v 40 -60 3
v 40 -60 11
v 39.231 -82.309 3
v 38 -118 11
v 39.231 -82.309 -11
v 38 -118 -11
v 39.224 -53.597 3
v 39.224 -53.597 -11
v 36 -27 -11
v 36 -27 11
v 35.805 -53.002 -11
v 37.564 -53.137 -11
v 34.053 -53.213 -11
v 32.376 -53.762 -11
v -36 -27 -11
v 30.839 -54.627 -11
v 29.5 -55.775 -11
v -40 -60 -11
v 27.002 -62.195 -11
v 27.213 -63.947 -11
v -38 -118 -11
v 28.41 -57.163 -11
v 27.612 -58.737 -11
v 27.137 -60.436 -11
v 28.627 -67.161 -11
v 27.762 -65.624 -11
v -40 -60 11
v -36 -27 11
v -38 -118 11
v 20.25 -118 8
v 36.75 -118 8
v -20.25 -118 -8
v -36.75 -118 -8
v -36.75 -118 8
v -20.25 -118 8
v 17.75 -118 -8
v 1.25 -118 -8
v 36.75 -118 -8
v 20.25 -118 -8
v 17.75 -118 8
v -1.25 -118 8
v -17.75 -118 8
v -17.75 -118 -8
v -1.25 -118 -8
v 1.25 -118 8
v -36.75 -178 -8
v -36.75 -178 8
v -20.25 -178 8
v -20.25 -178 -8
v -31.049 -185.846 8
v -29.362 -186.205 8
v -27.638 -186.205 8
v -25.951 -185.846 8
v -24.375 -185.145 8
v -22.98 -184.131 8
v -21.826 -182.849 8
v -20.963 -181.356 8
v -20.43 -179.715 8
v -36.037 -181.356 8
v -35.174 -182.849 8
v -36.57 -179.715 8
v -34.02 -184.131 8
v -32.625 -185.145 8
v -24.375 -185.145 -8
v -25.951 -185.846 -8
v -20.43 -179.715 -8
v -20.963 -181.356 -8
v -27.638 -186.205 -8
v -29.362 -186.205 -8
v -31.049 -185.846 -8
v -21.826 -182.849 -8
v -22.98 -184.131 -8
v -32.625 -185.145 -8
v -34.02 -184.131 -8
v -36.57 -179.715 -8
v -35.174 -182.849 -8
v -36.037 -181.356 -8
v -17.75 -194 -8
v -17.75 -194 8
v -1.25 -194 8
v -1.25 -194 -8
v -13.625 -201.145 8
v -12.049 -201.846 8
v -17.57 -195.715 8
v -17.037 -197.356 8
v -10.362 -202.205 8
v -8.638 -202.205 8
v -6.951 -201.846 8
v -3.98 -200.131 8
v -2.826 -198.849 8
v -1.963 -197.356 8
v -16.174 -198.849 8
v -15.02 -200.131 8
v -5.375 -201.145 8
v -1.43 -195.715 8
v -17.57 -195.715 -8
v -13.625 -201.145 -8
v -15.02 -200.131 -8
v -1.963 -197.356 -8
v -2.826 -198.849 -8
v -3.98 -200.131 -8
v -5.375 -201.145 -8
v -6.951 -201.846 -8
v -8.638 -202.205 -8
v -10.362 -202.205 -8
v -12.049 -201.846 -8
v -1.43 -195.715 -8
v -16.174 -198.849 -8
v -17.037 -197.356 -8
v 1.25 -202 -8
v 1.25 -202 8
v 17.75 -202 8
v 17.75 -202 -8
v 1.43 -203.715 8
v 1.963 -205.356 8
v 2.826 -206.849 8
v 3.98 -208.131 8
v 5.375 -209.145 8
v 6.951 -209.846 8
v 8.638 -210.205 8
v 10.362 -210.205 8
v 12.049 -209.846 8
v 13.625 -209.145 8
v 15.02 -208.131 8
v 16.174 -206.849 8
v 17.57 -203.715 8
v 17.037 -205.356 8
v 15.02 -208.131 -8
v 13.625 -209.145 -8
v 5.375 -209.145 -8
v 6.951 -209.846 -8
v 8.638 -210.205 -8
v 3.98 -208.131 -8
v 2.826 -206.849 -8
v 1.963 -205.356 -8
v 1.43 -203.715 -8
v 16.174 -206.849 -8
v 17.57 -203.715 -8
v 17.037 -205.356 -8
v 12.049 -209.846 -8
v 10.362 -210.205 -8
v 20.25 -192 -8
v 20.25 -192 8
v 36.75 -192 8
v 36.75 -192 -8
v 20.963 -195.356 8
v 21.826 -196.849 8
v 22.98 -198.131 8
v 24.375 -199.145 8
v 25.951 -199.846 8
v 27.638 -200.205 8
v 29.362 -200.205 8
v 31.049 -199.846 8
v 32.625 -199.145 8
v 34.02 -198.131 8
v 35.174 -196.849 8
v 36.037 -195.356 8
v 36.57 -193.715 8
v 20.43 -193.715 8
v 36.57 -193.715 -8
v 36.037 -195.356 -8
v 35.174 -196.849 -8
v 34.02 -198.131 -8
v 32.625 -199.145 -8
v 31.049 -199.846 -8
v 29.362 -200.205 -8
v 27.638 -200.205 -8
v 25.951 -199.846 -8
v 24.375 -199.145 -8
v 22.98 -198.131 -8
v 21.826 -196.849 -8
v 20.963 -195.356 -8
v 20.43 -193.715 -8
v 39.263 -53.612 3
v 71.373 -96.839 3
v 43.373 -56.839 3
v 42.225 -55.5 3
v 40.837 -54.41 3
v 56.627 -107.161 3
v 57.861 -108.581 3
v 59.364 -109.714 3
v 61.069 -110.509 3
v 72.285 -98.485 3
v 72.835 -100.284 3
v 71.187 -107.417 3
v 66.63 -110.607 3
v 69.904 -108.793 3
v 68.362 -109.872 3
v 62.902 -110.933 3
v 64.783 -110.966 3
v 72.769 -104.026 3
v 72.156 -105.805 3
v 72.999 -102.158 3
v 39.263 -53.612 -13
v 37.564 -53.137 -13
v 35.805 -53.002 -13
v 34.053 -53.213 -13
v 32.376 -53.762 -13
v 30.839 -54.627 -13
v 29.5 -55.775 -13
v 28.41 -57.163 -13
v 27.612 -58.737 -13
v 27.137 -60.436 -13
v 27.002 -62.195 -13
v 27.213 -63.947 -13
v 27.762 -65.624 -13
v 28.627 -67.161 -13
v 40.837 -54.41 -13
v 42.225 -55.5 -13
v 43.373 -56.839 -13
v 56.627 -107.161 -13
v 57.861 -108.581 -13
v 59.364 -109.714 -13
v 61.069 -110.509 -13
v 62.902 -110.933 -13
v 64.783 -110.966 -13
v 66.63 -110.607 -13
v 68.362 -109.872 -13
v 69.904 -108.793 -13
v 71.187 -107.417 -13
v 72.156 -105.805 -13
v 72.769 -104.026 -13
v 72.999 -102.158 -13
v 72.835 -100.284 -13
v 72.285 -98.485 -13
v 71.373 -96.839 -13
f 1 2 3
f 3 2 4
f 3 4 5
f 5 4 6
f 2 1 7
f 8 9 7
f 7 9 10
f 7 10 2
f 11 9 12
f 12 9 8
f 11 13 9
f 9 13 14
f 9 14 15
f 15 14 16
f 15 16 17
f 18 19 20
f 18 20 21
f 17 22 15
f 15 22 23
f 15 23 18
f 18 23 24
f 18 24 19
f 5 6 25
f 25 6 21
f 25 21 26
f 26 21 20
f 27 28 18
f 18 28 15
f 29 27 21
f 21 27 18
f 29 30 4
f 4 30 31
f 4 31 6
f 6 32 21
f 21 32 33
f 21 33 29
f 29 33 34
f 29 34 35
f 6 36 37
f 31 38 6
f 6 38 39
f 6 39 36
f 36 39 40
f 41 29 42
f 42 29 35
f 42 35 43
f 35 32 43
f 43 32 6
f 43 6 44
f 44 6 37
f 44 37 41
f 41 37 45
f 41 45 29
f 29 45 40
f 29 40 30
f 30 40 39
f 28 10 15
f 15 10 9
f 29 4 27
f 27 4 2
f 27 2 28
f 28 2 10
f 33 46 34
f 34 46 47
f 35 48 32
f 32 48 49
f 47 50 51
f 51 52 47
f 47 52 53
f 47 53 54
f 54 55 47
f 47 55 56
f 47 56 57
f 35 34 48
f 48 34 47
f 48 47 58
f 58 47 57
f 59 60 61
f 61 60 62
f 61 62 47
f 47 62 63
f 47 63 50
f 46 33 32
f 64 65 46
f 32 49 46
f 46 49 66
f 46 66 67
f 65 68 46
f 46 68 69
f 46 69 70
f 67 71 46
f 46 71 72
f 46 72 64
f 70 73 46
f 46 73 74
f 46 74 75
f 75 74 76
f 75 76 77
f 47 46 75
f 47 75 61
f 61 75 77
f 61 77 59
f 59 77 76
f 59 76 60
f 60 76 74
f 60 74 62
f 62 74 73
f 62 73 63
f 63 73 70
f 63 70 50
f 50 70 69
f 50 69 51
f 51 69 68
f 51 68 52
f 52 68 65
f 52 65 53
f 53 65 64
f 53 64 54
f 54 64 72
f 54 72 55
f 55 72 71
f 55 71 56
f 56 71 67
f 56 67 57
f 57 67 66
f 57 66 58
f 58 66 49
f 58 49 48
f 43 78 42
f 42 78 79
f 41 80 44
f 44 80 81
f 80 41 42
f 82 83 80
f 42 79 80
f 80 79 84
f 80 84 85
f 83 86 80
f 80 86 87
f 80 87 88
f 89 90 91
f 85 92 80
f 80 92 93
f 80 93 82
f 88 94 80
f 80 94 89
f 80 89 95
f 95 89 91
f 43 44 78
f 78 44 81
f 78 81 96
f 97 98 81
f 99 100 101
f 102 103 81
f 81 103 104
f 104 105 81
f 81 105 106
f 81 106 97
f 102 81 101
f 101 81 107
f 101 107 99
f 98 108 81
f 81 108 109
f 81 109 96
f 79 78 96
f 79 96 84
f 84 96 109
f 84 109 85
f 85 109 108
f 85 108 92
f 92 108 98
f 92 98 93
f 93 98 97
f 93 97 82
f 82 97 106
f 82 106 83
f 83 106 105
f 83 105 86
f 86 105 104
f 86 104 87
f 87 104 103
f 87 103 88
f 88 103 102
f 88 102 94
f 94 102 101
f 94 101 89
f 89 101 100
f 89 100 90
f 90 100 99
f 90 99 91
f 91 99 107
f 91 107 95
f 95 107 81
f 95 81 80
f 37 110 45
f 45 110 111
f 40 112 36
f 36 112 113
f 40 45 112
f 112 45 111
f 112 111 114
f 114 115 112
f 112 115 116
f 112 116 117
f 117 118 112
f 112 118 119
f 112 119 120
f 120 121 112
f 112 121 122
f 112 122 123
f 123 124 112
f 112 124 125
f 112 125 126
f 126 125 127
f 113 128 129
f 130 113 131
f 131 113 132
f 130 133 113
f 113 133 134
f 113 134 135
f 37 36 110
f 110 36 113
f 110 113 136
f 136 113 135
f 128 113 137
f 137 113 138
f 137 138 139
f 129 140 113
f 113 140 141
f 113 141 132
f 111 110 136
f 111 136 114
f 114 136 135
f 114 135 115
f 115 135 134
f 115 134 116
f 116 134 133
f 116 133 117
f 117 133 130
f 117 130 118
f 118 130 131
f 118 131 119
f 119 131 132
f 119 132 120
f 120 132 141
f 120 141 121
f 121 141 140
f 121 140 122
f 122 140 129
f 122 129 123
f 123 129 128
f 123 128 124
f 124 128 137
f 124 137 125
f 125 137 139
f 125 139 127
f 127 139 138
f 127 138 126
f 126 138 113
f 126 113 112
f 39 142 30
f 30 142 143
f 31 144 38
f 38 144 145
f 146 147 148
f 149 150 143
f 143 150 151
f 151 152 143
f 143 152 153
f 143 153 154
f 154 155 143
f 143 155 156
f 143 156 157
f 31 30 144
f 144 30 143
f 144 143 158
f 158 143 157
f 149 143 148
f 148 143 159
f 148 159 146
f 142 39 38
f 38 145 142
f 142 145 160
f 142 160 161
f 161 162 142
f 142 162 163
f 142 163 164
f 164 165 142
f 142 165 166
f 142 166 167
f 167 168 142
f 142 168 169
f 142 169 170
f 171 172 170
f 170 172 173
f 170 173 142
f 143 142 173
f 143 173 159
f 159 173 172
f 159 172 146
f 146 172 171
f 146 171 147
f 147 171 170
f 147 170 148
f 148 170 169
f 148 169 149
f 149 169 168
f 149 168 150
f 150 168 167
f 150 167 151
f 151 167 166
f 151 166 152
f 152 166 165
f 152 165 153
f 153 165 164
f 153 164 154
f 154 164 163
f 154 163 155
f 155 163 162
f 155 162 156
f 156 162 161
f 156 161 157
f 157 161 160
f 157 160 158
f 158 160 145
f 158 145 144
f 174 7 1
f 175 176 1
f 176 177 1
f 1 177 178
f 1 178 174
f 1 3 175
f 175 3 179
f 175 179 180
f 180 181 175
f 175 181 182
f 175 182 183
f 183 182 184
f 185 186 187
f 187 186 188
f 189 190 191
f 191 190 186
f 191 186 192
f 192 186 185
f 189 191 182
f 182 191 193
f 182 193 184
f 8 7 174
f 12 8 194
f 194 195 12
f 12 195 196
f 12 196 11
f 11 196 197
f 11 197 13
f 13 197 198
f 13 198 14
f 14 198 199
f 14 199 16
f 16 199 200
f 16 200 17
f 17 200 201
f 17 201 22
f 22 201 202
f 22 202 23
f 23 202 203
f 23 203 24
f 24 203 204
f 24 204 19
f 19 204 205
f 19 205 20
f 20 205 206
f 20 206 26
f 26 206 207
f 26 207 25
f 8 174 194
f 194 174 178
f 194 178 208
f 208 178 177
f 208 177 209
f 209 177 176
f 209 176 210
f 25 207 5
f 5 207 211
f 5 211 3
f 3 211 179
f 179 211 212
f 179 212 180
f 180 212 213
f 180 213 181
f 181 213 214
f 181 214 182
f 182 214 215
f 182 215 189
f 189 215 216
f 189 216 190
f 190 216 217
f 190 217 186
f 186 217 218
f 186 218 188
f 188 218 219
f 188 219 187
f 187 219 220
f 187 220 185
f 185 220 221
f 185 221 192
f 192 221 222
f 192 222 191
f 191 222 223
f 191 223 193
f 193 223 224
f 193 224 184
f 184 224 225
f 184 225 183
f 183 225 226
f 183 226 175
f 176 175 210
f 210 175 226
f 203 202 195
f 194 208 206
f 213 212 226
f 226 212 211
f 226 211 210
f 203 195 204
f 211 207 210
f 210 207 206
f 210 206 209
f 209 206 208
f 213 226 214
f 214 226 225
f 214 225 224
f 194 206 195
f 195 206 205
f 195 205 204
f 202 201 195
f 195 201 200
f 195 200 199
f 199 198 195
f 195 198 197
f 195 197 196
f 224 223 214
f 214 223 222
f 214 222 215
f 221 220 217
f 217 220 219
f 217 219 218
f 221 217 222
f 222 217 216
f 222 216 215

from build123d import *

# Parameters (mm, degrees)
PALMA_DEPTH   = 22
MENIQUE_DEPTH = 16
ANULAR_DEPTH  = 16
MEDIO_DEPTH   = 16
INDICE_DEPTH  = 16
PULGAR_DEPTH  = 16


with BuildPart() as part:
    # Sketch1 → Palma (new body)
    with BuildSketch(Plane.XY.offset(-11)):
        Polygon((-36, -27), (36, -27), (40, -60), (38, -118), (-38, -118), (-40, -60), align=None)
    extrude(amount=PALMA_DEPTH)

    # Sketch2 → Menique (add)
    with BuildSketch(Plane.XY.offset(-8)):
        with BuildLine():
            Line((-20.25, -112), (-20.25, -178))
            ThreePointArc((-20.25, -178), (-28.5, -186.25), (-36.75, -178))
            Line((-36.75, -178), (-36.75, -112))
            ThreePointArc((-36.75, -112), (-28.5, -103.75), (-20.25, -112))
        make_face()
    extrude(amount=MENIQUE_DEPTH)

    # Sketch3 → Anular (add)
    with BuildSketch(Plane.XY.offset(-8)):
        with BuildLine():
            Line((-1.25, -112), (-1.25, -194))
            ThreePointArc((-1.25, -194), (-9.5, -202.25), (-17.75, -194))
            Line((-17.75, -194), (-17.75, -112))
            ThreePointArc((-17.75, -112), (-9.5, -103.75), (-1.25, -112))
        make_face()
    extrude(amount=ANULAR_DEPTH)

    # Sketch4 → Medio (add)
    with BuildSketch(Plane.XY.offset(-8)):
        with BuildLine():
            Line((17.75, -112), (17.75, -202))
            ThreePointArc((17.75, -202), (9.5, -210.25), (1.25, -202))
            Line((1.25, -202), (1.25, -112))
            ThreePointArc((1.25, -112), (9.5, -103.75), (17.75, -112))
        make_face()
    extrude(amount=MEDIO_DEPTH)

    # Sketch5 → Indice (add)
    with BuildSketch(Plane.XY.offset(-8)):
        with BuildLine():
            Line((36.75, -112), (36.75, -192))
            ThreePointArc((36.75, -192), (28.5, -200.25), (20.25, -192))
            Line((20.25, -192), (20.25, -112))
            ThreePointArc((20.25, -112), (28.5, -103.75), (36.75, -112))
        make_face()
    extrude(amount=INDICE_DEPTH)

    # Sketch6 → Pulgar (add)
    with BuildSketch(Plane.XY.offset(-13)):
        with BuildLine():
            Line((43.373087285, -56.838838901), (71.373087285, -96.838838901))
            ThreePointArc((71.373087285, -96.838838901), (69.161161099, -109.373087285), (56.626912715, -107.161161099))
            Line((56.626912715, -107.161161099), (28.626912715, -67.161161099))
            ThreePointArc((28.626912715, -67.161161099), (30.838838901, -54.626912715), (43.373087285, -56.838838901))
        make_face()
    extrude(amount=PULGAR_DEPTH)


solid = part.part
